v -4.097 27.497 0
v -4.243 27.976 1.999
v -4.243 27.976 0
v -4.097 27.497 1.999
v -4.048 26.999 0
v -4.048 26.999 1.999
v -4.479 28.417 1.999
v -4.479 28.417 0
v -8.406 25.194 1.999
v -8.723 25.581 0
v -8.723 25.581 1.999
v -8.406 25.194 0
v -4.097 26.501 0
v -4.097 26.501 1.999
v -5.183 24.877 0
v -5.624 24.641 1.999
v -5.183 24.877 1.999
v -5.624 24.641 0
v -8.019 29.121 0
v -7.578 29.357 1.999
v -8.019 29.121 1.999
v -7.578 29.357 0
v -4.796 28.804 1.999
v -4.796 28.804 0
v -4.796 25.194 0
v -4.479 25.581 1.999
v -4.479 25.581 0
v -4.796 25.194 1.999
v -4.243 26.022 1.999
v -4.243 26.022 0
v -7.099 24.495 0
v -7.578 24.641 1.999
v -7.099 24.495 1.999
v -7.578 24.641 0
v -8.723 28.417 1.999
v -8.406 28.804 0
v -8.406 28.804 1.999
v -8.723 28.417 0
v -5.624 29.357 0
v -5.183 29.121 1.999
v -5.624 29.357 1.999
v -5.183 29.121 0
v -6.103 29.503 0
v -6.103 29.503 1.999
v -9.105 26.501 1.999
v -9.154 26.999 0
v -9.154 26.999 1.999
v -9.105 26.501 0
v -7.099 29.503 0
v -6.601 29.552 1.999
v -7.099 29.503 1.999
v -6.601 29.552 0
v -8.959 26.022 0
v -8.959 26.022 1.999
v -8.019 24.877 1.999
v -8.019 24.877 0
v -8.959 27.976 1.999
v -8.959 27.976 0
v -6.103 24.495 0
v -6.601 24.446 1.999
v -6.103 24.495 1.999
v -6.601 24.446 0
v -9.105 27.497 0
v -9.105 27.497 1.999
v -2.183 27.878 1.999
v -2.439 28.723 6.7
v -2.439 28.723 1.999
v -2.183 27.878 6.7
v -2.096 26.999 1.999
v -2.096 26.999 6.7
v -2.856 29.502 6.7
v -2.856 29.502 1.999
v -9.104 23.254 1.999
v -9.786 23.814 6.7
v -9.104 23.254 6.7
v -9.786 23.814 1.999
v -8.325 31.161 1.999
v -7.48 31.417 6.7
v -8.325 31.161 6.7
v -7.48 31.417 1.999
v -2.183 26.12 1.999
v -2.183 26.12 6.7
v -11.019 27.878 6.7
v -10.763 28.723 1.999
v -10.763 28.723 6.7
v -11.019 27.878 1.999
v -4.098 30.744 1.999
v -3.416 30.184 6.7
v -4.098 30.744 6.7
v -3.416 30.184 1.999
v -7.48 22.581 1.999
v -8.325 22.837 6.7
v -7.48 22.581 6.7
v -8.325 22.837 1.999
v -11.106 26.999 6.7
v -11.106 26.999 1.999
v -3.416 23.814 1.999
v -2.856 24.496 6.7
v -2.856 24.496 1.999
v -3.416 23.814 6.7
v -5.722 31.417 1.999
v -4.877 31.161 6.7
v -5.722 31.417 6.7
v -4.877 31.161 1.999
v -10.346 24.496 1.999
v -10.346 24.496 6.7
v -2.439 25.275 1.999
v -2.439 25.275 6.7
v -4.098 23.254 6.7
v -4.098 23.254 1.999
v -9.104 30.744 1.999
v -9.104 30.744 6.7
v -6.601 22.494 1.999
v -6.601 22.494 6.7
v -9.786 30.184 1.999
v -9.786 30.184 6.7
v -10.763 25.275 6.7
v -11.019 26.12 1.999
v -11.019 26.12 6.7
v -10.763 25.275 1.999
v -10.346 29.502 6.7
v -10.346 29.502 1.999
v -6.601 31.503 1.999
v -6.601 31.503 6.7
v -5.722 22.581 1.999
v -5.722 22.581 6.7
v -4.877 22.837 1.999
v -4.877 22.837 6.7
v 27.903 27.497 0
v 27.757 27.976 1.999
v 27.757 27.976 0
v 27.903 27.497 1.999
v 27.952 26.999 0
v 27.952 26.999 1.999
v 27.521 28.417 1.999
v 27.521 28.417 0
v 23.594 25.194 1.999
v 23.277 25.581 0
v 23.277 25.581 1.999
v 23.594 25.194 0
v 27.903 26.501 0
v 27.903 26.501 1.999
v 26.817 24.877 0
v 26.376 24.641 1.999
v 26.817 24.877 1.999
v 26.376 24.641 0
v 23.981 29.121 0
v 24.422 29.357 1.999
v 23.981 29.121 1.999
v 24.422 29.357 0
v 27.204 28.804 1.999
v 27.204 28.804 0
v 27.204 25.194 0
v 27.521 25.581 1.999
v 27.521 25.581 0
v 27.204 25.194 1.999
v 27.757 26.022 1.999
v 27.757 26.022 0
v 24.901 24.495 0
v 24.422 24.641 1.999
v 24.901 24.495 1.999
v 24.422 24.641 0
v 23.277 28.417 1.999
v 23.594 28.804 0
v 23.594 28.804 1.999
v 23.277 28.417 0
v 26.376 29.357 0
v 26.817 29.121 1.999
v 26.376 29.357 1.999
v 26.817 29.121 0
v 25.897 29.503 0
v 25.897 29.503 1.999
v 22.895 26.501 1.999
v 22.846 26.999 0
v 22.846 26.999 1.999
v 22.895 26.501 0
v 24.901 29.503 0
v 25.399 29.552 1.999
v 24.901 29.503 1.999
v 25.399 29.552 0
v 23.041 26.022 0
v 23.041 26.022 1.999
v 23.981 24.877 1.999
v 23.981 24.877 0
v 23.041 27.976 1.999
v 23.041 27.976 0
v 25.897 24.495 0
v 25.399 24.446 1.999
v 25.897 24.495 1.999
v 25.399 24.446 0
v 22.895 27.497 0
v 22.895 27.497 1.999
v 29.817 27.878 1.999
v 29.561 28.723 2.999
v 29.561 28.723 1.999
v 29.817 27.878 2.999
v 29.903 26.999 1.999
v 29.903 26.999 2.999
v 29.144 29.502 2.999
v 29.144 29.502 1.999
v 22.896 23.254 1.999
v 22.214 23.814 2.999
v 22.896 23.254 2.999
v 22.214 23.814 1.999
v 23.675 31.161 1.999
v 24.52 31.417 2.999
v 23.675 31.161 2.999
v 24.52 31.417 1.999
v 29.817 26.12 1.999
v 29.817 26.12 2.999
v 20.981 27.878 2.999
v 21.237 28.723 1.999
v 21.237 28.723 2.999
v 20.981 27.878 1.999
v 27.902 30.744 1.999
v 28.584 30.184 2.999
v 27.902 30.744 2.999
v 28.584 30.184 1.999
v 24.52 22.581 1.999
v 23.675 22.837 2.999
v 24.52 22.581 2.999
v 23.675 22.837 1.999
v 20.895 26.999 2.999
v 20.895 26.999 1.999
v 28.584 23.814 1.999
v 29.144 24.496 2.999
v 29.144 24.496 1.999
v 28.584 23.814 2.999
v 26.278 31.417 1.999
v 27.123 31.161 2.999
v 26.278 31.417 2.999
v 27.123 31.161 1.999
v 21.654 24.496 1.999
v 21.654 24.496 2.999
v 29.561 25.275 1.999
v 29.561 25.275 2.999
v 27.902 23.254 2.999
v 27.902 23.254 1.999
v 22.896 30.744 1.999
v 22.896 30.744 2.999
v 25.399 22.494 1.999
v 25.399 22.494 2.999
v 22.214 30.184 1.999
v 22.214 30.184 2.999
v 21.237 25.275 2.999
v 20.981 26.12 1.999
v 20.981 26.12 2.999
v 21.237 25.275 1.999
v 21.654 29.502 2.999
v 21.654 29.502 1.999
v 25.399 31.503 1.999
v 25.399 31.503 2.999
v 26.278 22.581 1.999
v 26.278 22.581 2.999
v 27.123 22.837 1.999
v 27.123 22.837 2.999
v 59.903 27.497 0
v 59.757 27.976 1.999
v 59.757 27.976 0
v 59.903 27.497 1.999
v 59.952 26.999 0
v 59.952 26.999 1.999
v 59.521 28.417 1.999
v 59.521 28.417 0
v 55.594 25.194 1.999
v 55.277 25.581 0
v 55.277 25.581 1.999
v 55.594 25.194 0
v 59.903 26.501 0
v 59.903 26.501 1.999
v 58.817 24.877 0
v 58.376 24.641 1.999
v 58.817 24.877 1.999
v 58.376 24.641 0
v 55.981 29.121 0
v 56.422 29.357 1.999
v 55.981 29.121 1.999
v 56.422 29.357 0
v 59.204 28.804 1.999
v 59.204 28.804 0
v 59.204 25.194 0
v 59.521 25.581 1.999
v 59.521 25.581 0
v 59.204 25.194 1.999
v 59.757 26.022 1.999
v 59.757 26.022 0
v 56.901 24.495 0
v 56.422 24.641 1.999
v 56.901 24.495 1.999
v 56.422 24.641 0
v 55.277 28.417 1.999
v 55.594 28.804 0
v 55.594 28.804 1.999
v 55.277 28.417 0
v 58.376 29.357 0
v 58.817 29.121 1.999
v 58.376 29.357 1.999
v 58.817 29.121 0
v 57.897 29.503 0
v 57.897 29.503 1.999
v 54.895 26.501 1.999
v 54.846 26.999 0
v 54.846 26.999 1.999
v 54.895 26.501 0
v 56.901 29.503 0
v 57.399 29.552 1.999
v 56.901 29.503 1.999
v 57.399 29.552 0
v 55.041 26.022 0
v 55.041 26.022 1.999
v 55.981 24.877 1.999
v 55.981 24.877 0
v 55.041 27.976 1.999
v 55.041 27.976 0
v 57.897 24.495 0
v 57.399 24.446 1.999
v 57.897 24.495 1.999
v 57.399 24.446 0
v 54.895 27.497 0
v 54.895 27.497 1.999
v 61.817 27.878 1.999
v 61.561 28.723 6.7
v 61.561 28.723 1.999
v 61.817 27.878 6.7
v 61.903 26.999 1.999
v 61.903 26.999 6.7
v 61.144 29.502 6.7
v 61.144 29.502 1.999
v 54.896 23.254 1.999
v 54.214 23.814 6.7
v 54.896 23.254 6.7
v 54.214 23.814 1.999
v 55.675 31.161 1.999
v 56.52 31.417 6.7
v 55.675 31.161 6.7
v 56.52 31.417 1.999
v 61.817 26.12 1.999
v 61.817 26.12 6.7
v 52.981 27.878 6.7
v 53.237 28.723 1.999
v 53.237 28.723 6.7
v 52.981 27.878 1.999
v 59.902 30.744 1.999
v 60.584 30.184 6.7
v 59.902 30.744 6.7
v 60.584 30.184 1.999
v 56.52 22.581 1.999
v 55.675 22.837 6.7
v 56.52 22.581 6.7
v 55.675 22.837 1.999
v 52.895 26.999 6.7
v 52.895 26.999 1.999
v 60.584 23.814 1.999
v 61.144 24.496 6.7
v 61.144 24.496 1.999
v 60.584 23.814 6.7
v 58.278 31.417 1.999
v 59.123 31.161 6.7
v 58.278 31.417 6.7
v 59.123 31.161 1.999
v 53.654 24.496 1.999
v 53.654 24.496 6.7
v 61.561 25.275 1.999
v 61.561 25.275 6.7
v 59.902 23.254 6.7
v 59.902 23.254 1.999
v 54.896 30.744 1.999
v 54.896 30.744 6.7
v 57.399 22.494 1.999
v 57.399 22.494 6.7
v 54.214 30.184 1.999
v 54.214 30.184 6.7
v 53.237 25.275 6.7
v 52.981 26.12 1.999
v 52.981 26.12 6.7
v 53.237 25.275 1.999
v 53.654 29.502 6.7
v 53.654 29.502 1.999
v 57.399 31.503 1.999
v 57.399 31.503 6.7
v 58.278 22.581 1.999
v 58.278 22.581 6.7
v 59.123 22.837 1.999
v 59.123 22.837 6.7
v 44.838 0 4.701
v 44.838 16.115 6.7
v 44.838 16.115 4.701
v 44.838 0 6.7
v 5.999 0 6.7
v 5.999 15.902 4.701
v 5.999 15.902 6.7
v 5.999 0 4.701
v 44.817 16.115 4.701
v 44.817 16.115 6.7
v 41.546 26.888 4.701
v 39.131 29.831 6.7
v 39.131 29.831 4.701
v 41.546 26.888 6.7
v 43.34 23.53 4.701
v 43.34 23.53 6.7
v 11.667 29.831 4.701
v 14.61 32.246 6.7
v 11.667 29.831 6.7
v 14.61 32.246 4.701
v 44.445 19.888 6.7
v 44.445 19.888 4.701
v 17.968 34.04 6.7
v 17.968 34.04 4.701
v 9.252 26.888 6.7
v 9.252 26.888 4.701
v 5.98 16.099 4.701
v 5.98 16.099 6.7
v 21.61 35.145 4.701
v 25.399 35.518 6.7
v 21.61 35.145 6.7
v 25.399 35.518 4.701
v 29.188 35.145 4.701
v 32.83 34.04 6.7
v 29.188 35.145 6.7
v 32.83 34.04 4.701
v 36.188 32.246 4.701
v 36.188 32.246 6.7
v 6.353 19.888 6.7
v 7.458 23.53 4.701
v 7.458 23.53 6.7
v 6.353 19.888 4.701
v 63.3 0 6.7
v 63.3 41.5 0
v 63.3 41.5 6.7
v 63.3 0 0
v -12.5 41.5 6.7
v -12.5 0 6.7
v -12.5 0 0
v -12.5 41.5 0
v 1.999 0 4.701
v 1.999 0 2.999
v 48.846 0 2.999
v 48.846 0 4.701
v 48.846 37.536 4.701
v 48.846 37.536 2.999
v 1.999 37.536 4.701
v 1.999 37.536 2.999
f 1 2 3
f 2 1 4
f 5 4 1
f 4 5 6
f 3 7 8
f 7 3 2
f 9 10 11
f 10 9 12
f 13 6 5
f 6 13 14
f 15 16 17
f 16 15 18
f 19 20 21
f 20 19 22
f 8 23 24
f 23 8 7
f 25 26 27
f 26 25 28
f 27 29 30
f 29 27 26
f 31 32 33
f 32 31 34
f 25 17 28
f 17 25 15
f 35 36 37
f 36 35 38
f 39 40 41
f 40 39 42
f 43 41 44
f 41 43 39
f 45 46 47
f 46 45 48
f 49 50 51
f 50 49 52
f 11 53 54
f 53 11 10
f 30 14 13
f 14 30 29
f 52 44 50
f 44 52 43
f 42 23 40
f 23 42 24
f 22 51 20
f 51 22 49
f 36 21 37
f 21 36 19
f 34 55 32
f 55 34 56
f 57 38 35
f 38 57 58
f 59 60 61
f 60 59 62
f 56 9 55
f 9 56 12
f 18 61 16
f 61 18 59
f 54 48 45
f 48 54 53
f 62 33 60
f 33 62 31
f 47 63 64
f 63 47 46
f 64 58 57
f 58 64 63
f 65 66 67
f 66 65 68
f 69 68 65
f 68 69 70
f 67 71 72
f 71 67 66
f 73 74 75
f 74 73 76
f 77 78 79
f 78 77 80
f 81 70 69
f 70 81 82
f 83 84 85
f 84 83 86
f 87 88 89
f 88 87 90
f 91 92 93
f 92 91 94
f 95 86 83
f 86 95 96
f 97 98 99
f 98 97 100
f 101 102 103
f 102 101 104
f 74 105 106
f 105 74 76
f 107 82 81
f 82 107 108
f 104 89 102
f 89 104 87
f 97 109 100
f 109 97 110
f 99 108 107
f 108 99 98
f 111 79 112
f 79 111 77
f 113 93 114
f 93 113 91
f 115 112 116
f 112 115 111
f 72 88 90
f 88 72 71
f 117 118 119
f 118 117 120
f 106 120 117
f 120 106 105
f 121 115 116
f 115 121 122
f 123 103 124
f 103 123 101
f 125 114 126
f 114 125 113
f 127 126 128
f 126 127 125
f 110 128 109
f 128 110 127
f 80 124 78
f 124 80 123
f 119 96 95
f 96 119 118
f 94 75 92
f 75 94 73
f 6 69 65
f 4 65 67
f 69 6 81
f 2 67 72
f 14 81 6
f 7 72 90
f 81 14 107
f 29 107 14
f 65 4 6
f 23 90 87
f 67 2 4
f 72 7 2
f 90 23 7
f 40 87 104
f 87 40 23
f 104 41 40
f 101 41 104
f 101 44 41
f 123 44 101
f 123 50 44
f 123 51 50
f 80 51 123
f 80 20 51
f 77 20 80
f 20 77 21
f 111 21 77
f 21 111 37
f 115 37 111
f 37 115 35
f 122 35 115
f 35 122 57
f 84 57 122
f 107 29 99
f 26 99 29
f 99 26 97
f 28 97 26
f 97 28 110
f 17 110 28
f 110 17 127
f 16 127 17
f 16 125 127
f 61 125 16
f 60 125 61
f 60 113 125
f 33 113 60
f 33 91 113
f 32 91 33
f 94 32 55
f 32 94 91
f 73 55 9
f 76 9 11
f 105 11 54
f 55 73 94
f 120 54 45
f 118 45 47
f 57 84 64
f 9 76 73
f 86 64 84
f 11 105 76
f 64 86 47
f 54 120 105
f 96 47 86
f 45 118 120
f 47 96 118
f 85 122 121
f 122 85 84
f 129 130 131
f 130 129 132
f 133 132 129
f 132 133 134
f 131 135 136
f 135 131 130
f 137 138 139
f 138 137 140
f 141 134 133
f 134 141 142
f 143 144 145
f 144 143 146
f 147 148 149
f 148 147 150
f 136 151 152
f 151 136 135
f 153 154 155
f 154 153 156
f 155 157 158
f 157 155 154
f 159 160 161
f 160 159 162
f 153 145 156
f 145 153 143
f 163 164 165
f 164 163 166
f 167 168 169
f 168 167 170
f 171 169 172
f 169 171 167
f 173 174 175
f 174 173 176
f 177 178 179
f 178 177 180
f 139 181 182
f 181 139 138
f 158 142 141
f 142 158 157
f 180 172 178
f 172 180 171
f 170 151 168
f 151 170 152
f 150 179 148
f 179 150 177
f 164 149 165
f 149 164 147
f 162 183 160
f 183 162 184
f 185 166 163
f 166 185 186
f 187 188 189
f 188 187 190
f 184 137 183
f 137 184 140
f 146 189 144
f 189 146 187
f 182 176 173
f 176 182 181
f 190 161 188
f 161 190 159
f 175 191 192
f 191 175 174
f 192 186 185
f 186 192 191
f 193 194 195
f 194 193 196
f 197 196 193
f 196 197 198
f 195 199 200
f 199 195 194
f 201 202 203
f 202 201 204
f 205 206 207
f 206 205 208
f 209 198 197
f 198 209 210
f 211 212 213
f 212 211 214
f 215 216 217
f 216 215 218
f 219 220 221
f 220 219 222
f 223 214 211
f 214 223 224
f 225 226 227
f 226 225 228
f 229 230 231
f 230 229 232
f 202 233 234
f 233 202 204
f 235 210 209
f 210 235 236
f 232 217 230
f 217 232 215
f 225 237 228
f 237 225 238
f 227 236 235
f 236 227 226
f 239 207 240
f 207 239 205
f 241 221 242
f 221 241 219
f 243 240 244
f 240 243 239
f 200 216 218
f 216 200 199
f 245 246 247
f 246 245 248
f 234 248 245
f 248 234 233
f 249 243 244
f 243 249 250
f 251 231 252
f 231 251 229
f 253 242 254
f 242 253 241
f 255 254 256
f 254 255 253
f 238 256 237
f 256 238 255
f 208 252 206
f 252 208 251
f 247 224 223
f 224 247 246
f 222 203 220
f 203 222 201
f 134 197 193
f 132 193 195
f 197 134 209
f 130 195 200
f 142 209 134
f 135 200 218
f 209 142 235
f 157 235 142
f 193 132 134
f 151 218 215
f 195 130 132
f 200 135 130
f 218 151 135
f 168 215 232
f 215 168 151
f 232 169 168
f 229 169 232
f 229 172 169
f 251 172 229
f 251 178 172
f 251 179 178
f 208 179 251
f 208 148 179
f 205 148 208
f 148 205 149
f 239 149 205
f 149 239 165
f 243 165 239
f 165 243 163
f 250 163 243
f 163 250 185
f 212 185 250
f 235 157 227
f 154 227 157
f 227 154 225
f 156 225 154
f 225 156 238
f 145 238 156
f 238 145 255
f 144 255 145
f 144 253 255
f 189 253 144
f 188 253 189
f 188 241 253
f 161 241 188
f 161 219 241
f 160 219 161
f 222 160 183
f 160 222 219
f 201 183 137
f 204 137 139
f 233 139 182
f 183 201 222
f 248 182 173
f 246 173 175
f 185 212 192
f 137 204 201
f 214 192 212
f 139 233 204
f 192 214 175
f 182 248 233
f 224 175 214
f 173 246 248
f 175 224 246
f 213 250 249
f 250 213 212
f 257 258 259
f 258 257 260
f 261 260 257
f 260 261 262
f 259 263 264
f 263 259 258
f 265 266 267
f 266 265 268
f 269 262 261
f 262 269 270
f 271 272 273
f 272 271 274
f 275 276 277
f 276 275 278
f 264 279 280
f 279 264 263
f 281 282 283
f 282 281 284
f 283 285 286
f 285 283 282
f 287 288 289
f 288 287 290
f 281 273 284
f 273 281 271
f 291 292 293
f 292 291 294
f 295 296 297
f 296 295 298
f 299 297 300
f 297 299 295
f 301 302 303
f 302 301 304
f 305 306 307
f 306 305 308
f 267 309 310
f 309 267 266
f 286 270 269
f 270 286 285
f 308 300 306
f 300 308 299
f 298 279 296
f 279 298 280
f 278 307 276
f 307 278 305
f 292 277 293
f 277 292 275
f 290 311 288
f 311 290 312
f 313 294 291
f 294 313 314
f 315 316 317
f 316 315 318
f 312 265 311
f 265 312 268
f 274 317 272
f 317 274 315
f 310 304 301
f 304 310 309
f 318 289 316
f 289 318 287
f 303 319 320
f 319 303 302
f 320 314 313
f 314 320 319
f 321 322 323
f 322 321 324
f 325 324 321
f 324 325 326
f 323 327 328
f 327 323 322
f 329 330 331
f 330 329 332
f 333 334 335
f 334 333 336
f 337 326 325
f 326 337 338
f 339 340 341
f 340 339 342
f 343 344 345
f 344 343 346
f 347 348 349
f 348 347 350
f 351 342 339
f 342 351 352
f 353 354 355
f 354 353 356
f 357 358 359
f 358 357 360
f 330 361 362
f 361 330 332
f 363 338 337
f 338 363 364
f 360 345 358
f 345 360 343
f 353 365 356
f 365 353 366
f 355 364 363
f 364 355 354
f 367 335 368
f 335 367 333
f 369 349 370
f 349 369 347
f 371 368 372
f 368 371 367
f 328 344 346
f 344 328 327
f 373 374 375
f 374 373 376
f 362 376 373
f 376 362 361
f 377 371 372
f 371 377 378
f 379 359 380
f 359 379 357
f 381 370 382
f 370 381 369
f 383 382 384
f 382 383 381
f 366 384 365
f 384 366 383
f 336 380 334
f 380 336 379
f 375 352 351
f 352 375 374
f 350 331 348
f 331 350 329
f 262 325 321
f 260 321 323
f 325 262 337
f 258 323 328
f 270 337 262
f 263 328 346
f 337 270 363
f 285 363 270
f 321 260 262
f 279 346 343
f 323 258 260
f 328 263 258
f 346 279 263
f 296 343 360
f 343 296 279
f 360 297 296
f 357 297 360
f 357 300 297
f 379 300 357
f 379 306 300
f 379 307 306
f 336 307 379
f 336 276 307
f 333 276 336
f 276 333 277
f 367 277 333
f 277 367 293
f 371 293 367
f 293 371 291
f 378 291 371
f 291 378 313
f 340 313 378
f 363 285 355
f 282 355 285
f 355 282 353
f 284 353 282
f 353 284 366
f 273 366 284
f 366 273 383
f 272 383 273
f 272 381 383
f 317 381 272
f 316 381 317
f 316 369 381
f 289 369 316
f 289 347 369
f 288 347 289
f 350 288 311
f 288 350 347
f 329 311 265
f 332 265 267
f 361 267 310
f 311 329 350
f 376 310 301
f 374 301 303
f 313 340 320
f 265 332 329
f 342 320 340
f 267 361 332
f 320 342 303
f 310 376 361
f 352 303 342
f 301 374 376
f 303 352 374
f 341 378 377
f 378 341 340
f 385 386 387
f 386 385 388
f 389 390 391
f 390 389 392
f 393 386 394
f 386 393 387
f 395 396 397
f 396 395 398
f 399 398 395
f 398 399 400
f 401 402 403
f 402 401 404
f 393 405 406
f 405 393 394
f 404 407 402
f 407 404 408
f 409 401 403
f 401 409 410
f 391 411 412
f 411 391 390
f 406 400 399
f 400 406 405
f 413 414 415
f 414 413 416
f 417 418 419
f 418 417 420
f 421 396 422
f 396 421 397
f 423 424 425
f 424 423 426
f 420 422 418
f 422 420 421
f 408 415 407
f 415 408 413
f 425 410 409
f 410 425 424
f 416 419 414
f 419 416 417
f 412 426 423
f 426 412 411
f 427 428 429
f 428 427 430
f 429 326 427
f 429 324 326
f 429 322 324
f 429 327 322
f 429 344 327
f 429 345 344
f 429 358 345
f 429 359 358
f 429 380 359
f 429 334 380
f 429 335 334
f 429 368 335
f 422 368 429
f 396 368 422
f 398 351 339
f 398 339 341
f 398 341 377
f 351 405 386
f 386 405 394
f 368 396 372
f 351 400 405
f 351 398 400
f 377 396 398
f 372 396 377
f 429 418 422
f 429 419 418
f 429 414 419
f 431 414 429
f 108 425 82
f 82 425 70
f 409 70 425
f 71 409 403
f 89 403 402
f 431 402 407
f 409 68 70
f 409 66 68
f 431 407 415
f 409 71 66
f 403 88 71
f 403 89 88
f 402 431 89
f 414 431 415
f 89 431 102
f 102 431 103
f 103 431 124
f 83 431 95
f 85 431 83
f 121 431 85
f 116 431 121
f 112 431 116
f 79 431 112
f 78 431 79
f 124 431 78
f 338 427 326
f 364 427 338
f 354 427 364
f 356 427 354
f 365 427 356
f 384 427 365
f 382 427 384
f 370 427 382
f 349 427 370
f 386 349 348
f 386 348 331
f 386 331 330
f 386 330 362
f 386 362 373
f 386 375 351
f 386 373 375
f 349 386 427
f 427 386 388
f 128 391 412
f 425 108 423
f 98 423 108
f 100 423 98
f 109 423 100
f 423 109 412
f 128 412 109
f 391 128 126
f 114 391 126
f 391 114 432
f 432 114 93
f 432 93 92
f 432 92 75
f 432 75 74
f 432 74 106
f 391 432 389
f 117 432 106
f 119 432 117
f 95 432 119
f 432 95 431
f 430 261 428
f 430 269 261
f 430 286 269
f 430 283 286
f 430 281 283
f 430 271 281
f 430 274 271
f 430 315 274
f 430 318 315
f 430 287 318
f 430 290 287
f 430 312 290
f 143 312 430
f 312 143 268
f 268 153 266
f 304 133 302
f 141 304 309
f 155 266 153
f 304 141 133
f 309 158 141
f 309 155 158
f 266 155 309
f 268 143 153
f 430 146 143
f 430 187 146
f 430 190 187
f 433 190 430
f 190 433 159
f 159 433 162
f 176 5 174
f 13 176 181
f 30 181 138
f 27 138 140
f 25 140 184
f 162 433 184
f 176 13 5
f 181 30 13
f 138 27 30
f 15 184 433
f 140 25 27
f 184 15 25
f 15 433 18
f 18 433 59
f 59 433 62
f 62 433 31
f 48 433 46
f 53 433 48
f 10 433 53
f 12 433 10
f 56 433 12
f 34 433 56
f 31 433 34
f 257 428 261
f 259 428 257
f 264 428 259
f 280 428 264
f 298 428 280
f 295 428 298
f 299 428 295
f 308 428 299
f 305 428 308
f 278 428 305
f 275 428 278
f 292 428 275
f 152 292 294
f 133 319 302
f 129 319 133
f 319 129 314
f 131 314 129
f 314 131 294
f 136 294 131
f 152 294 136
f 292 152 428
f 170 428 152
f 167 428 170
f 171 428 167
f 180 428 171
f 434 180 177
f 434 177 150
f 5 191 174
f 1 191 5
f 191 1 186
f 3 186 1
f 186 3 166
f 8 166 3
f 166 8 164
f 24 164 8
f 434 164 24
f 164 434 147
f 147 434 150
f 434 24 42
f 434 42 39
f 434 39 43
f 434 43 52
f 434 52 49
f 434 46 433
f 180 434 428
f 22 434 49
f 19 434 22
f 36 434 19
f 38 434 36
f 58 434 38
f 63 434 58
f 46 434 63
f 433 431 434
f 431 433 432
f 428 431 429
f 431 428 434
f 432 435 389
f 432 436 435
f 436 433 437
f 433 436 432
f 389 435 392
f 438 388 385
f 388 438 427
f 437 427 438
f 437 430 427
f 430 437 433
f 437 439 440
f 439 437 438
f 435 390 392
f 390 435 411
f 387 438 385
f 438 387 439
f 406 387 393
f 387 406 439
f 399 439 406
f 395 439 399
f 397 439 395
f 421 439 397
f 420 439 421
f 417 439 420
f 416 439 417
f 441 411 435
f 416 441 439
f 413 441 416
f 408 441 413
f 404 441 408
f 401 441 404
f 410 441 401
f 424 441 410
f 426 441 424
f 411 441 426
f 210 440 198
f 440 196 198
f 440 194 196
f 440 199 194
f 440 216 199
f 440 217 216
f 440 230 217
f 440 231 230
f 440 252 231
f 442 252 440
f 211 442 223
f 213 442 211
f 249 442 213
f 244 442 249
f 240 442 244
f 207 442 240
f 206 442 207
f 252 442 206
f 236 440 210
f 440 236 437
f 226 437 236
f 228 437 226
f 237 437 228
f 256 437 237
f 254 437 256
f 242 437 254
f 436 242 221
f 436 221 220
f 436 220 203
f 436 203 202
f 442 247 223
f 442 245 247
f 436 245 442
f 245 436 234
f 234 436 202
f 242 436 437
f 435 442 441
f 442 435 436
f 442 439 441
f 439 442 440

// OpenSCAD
// Generated by SolidPython 1.1.3 on 2024-11-18 01:46:13
$fn = 32;


difference() {
	translate(v = [-12.5000000000, 0, 0]) {
		cube(size = [75.8000000000, 41.5000000000, 6.7000000000]);
	}
	translate(v = [2, 0, 3]) {
		translate(v = [-0.0010000000, -0.0010000000, -0.0010000000]) {
			scale(v = [1.0010000000, 1.0010000000, 1.0010000000]) {
				cube(size = [46.8000000000, 37.5000000000, 1.7000000000]);
			}
		}
	}
	union() {
		translate(v = [6, 0, 4.7000000000]) {
			translate(v = [-0.0010000000, -0.0010000000, -0.0010000000]) {
				scale(v = [1.0010000000, 1.0010000000, 1.0010000000]) {
					cube(size = [38.8000000000, 16.1000000000, 2]);
				}
			}
		}
		translate(v = [25.4000000000, 16.1000000000, 4.7000000000]) {
			translate(v = [-0.0010000000, -0.0010000000, -0.0010000000]) {
				scale(v = [1.0010000000, 1.0010000000, 1.0010000000]) {
					cylinder(h = 2, r = 19.4000000000);
				}
			}
		}
	}
	translate(v = [-6.6000000000, 27, 0]) {
		union() {
			translate(v = [-0.0010000000, -0.0010000000, -0.0010000000]) {
				scale(v = [1.0010000000, 1.0010000000, 1.0010000000]) {
					cylinder(d = 5.1000000000, h = 20);
				}
			}
			translate(v = [0, 0, 2]) {
				translate(v = [-0.0010000000, -0.0010000000, -0.0010000000]) {
					scale(v = [1.0010000000, 1.0010000000, 1.0010000000]) {
						cylinder(d = 9, h = 20);
					}
				}
			}
		}
	}
	translate(v = [25.4000000000, 27, 0]) {
		union() {
			translate(v = [-0.0010000000, -0.0010000000, -0.0010000000]) {
				scale(v = [1.0010000000, 1.0010000000, 1.0010000000]) {
					cylinder(d = 5.1000000000, h = 20);
				}
			}
			translate(v = [0, 0, 2]) {
				translate(v = [-0.0010000000, -0.0010000000, -0.0010000000]) {
					scale(v = [1.0010000000, 1.0010000000, 1.0010000000]) {
						cylinder(d = 9, h = 20);
					}
				}
			}
		}
	}
	translate(v = [57.4000000000, 27, 0]) {
		union() {
			translate(v = [-0.0010000000, -0.0010000000, -0.0010000000]) {
				scale(v = [1.0010000000, 1.0010000000, 1.0010000000]) {
					cylinder(d = 5.1000000000, h = 20);
				}
			}
			translate(v = [0, 0, 2]) {
				translate(v = [-0.0010000000, -0.0010000000, -0.0010000000]) {
					scale(v = [1.0010000000, 1.0010000000, 1.0010000000]) {
						cylinder(d = 9, h = 20);
					}
				}
			}
		}
	}
}
/***********************************************
*********      SolidPython code:      **********
************************************************
 
from solid import *
from solid.utils import *

mm = 1

width = 45*mm + 1.8*mm
height = 41*mm - 3.5*mm
padding = 25*mm
thickness = 1.7*mm
wall_spacing = 3*mm # (stem width - front corner edge spacing) / 2 = (562mm - 556mm) / 2 = 3mm
m = 2*mm


def screw_hole(x, y):
    screw = z(cylinder(d=5.1*mm, h=20*mm))
    screw_hat = z(cylinder(d=9*mm, h=20*mm))
    screw_hat = translate([0, 0, 2*mm])(screw_hat)
    return translate([x, y, 0])(screw + screw_hat)


def attachment():
    blank = cube([width + 2*m + padding, height + 2*m, wall_spacing + thickness + m])
    blank = translate([-padding/2, 0, 0])(blank)

    corner_part = z(cube([width, height, thickness]))
    corner_part = translate([m, 0, wall_spacing])(corner_part)

    o = 2 * m
    r = width / 2 - o
    a = z(cube([width - 2*o, height - r - o + m, m]))
    a = translate([m + o, 0, wall_spacing + thickness])(a)
    b = z(cylinder(r, m))
    b = translate([width / 2 + m, height - r - o + m, wall_spacing + thickness])(b)
    look_through_window = a + b

    hole_spacing = 32*mm
    hole_depth = 27*mm
    hole_position = width / 2 + m - hole_spacing
    screw_holes = [
        screw_hole(hole_position, hole_depth),
        screw_hole(hole_position + hole_spacing, hole_depth),
        screw_hole(hole_position + 2*hole_spacing, hole_depth),
    ]

    part = blank - corner_part - look_through_window - screw_holes
    #part = rotate([90, 0, 0])(part)

    return part


def z(part):
    """ Avoid z-fighting on basic shapes """
    t = 0.001
    s = 1.001
    part = scale([s, s, s])(part)
    part = translate([-t, -t, -t])(part)
    return part


fn = 32
scad_render_to_file(attachment(), "ikea-fake-front-attachment.scad",
                    file_header='$fn = %d;' % fn)
 
 
************************************************/
